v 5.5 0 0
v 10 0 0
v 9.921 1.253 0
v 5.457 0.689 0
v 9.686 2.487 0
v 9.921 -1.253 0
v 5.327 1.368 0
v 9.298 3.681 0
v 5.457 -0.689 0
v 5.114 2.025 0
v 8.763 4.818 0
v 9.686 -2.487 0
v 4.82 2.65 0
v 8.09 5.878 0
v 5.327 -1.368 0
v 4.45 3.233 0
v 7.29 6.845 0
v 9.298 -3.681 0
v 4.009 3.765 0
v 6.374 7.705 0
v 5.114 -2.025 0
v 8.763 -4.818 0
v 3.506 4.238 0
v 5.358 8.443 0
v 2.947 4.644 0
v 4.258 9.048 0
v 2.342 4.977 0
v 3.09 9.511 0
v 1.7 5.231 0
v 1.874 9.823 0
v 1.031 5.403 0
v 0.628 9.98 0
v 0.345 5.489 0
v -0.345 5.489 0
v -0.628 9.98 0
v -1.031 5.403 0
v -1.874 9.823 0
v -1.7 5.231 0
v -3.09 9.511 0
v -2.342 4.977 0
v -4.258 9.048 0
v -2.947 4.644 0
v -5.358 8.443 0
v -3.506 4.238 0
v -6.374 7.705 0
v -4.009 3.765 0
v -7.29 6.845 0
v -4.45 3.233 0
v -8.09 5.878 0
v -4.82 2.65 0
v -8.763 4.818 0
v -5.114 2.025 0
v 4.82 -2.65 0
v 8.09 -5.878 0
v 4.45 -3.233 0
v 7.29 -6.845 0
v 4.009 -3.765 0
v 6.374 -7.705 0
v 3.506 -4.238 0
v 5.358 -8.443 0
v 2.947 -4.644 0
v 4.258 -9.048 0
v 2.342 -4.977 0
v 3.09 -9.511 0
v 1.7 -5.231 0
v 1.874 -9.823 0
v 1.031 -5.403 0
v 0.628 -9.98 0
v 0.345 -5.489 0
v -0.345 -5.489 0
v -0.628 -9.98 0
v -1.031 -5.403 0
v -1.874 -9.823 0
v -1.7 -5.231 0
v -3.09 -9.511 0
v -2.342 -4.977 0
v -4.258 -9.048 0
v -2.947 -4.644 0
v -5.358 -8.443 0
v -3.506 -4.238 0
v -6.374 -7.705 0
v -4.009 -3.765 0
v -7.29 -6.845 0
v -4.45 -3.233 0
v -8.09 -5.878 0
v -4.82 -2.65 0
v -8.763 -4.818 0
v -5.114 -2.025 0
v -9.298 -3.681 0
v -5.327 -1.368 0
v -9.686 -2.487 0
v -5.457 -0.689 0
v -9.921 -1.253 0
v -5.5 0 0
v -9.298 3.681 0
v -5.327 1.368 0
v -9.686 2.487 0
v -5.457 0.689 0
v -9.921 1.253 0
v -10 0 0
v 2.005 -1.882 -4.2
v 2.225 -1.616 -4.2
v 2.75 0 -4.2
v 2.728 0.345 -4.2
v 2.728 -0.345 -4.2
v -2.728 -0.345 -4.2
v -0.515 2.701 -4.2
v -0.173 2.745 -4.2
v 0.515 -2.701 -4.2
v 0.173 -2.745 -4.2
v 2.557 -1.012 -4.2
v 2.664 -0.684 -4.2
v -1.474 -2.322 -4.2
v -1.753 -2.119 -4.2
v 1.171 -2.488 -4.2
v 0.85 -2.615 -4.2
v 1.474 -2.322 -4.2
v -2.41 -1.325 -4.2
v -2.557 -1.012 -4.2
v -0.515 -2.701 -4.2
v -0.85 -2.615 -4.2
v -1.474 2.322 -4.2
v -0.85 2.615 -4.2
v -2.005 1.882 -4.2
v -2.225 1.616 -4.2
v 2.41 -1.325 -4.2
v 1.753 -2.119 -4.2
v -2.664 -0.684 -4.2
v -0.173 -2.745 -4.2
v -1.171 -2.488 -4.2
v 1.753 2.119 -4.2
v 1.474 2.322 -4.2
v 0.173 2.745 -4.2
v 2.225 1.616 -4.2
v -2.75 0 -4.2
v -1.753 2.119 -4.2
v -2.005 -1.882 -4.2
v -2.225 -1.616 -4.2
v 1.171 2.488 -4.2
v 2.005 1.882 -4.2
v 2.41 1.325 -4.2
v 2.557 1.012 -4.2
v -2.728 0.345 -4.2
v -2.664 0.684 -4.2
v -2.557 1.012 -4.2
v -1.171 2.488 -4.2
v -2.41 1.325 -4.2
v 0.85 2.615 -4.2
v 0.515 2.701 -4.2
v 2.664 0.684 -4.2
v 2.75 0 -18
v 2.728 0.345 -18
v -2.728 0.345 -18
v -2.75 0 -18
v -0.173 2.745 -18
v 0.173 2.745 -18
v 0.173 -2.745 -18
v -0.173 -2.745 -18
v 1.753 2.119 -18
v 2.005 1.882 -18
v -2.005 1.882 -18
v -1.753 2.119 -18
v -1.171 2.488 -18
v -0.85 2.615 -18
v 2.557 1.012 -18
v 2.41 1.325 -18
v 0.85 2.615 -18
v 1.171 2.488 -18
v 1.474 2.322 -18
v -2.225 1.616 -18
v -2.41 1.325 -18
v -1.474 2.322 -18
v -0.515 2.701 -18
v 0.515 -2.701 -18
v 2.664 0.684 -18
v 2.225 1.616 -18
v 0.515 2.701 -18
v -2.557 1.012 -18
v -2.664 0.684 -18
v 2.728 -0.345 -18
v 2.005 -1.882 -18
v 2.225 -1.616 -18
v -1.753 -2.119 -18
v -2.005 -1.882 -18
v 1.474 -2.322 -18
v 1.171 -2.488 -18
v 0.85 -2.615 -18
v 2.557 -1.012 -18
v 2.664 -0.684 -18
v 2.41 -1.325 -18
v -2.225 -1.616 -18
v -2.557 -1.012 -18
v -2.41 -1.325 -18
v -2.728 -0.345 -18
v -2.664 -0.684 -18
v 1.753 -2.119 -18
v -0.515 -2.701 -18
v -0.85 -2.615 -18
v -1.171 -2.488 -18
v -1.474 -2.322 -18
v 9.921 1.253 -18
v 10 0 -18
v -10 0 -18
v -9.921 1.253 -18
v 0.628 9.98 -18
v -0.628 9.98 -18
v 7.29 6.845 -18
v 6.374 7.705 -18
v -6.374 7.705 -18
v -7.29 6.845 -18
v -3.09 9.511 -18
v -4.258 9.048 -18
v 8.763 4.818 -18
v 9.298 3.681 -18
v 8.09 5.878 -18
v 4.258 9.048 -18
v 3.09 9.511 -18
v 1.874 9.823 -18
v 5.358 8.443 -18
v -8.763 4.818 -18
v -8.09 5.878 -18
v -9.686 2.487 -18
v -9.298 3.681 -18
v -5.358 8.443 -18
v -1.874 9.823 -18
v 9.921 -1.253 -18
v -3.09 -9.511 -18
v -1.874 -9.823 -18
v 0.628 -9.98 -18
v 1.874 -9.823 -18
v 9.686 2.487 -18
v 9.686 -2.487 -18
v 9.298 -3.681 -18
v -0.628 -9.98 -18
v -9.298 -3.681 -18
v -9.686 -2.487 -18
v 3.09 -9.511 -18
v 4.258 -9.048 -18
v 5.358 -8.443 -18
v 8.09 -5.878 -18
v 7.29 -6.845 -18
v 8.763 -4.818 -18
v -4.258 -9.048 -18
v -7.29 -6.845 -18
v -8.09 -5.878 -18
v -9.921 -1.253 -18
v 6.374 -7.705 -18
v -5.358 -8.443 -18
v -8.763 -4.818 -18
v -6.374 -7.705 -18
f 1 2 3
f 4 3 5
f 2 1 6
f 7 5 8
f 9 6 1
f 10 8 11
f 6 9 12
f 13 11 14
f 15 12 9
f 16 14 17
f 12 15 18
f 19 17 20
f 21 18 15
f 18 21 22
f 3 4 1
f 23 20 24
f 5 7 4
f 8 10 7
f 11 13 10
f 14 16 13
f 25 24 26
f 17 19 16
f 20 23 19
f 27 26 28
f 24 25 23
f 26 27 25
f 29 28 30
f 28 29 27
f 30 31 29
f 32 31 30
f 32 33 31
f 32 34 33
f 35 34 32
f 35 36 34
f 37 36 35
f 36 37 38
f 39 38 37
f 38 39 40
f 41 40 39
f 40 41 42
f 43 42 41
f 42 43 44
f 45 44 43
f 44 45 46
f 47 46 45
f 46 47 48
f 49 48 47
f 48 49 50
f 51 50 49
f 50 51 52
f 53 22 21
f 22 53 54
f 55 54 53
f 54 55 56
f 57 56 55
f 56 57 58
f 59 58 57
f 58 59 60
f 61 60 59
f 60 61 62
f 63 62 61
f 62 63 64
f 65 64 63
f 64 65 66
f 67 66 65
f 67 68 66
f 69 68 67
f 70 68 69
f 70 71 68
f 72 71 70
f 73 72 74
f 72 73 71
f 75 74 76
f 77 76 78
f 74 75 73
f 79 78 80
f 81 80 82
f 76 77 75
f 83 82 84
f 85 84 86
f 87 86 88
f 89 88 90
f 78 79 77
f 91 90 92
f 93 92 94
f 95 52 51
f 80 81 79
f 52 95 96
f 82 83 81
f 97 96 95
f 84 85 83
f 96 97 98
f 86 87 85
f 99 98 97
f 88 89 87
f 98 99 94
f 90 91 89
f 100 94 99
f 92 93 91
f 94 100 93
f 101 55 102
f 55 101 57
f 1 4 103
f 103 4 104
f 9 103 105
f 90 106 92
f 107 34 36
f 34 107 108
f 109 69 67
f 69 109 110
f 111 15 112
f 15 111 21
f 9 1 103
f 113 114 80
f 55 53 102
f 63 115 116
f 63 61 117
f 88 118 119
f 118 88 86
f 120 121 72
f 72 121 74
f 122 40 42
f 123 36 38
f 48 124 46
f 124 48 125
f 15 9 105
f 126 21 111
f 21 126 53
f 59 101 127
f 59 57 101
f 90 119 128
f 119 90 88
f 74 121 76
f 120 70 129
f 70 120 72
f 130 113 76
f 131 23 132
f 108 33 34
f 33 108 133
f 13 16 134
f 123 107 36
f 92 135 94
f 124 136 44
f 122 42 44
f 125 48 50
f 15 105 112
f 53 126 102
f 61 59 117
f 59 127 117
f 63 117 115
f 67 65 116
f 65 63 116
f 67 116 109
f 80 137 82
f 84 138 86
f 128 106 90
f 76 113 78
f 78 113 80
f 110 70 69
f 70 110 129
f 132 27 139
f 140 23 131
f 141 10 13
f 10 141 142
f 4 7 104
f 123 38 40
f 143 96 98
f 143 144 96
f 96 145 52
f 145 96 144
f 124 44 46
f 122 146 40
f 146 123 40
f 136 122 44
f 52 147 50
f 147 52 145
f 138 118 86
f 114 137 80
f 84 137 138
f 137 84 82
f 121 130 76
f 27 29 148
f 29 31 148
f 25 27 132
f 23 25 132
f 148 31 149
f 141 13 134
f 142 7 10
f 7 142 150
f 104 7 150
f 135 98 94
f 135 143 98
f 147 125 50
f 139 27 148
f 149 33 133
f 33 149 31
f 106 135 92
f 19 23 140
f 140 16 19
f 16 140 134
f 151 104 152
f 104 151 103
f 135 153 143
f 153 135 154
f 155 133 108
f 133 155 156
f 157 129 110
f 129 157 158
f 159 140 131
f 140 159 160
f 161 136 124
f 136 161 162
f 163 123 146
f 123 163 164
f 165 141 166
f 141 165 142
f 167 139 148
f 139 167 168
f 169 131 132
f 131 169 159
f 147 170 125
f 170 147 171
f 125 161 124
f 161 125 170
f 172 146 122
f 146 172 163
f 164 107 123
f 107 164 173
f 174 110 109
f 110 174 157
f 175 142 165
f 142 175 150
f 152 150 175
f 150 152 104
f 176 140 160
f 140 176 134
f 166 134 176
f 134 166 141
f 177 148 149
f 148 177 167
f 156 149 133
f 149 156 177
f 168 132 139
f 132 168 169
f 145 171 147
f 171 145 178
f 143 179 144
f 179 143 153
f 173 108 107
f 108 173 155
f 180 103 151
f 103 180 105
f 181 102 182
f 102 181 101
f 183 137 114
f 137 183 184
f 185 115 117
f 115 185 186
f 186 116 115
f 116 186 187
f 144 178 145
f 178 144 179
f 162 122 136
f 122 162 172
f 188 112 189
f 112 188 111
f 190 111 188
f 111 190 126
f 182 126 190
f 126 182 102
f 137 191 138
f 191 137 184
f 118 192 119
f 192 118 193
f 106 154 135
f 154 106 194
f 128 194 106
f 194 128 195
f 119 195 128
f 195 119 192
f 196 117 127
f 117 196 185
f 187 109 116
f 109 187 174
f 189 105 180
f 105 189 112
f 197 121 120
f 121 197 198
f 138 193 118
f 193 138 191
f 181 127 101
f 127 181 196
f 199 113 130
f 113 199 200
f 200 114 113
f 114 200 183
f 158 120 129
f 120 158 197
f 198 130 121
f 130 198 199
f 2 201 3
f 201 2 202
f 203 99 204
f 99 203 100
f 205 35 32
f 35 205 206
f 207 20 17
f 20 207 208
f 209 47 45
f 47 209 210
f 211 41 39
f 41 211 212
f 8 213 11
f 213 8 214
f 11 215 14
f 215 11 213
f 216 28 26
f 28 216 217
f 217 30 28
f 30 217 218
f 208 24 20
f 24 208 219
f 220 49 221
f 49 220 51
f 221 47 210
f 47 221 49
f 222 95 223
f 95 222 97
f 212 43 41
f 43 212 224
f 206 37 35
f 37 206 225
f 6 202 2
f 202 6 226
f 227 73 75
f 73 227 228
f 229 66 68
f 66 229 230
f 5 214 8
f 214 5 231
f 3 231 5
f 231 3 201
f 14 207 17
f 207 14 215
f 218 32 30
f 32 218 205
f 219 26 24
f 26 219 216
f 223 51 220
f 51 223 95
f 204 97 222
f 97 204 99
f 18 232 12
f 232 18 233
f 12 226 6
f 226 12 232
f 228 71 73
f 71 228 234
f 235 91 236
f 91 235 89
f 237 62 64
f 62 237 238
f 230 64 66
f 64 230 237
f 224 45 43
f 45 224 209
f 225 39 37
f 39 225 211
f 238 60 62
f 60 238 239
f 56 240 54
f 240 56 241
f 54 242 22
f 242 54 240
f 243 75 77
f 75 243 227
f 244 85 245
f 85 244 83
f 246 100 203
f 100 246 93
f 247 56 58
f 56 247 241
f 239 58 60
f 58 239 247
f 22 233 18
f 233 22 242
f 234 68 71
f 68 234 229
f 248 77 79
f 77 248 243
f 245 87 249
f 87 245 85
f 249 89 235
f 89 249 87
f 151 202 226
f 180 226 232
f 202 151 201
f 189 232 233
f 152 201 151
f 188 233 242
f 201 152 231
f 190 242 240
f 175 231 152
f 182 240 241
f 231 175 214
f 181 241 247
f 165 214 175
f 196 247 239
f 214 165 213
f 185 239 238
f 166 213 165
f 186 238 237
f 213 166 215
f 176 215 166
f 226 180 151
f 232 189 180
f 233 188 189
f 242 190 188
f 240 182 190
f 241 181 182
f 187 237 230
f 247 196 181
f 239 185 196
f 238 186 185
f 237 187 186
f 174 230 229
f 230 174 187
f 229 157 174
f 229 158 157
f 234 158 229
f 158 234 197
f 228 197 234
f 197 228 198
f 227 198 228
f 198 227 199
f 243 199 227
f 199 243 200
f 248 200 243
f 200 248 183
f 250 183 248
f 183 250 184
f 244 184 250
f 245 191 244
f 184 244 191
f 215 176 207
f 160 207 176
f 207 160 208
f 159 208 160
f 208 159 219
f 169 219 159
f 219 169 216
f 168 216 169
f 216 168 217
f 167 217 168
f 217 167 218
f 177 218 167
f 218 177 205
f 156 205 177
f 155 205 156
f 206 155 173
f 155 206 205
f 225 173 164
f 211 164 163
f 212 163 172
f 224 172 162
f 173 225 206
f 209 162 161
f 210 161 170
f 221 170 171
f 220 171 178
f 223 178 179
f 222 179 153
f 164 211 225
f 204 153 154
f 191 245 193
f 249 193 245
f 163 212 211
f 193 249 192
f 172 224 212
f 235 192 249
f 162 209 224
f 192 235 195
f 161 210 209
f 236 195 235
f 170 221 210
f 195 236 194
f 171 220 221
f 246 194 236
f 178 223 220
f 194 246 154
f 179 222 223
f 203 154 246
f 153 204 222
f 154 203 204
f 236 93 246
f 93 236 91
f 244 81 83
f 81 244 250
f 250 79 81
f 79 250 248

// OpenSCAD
$fn = 50;

difference() {
	union() {
		translate(v = [0, 0, -18.0]) {
			cylinder(h = 18, r = 10.0);
		}
	}
	union() {
		translate(v = [0, 0, 0]) {
			rotate(a = [0, 0, 0]) {
				difference() {
					union() {
						translate(v = [0, 0, -21.0]) {
							cylinder(h = 21, r = 2.25);
						}
						translate(v = [0, 0, -4.2]) {
							cylinder(h = 4.2, r1 = 2.75, r2 = 5.5);
						}
						translate(v = [0, 0, -21.0]) {
							cylinder(h = 21, r = 2.75);
						}
						translate(v = [0, 0, -21.0]) {
							cylinder(h = 21, r = 2.25);
						}
					}
					union();
				}
			}
		}
	}
}
